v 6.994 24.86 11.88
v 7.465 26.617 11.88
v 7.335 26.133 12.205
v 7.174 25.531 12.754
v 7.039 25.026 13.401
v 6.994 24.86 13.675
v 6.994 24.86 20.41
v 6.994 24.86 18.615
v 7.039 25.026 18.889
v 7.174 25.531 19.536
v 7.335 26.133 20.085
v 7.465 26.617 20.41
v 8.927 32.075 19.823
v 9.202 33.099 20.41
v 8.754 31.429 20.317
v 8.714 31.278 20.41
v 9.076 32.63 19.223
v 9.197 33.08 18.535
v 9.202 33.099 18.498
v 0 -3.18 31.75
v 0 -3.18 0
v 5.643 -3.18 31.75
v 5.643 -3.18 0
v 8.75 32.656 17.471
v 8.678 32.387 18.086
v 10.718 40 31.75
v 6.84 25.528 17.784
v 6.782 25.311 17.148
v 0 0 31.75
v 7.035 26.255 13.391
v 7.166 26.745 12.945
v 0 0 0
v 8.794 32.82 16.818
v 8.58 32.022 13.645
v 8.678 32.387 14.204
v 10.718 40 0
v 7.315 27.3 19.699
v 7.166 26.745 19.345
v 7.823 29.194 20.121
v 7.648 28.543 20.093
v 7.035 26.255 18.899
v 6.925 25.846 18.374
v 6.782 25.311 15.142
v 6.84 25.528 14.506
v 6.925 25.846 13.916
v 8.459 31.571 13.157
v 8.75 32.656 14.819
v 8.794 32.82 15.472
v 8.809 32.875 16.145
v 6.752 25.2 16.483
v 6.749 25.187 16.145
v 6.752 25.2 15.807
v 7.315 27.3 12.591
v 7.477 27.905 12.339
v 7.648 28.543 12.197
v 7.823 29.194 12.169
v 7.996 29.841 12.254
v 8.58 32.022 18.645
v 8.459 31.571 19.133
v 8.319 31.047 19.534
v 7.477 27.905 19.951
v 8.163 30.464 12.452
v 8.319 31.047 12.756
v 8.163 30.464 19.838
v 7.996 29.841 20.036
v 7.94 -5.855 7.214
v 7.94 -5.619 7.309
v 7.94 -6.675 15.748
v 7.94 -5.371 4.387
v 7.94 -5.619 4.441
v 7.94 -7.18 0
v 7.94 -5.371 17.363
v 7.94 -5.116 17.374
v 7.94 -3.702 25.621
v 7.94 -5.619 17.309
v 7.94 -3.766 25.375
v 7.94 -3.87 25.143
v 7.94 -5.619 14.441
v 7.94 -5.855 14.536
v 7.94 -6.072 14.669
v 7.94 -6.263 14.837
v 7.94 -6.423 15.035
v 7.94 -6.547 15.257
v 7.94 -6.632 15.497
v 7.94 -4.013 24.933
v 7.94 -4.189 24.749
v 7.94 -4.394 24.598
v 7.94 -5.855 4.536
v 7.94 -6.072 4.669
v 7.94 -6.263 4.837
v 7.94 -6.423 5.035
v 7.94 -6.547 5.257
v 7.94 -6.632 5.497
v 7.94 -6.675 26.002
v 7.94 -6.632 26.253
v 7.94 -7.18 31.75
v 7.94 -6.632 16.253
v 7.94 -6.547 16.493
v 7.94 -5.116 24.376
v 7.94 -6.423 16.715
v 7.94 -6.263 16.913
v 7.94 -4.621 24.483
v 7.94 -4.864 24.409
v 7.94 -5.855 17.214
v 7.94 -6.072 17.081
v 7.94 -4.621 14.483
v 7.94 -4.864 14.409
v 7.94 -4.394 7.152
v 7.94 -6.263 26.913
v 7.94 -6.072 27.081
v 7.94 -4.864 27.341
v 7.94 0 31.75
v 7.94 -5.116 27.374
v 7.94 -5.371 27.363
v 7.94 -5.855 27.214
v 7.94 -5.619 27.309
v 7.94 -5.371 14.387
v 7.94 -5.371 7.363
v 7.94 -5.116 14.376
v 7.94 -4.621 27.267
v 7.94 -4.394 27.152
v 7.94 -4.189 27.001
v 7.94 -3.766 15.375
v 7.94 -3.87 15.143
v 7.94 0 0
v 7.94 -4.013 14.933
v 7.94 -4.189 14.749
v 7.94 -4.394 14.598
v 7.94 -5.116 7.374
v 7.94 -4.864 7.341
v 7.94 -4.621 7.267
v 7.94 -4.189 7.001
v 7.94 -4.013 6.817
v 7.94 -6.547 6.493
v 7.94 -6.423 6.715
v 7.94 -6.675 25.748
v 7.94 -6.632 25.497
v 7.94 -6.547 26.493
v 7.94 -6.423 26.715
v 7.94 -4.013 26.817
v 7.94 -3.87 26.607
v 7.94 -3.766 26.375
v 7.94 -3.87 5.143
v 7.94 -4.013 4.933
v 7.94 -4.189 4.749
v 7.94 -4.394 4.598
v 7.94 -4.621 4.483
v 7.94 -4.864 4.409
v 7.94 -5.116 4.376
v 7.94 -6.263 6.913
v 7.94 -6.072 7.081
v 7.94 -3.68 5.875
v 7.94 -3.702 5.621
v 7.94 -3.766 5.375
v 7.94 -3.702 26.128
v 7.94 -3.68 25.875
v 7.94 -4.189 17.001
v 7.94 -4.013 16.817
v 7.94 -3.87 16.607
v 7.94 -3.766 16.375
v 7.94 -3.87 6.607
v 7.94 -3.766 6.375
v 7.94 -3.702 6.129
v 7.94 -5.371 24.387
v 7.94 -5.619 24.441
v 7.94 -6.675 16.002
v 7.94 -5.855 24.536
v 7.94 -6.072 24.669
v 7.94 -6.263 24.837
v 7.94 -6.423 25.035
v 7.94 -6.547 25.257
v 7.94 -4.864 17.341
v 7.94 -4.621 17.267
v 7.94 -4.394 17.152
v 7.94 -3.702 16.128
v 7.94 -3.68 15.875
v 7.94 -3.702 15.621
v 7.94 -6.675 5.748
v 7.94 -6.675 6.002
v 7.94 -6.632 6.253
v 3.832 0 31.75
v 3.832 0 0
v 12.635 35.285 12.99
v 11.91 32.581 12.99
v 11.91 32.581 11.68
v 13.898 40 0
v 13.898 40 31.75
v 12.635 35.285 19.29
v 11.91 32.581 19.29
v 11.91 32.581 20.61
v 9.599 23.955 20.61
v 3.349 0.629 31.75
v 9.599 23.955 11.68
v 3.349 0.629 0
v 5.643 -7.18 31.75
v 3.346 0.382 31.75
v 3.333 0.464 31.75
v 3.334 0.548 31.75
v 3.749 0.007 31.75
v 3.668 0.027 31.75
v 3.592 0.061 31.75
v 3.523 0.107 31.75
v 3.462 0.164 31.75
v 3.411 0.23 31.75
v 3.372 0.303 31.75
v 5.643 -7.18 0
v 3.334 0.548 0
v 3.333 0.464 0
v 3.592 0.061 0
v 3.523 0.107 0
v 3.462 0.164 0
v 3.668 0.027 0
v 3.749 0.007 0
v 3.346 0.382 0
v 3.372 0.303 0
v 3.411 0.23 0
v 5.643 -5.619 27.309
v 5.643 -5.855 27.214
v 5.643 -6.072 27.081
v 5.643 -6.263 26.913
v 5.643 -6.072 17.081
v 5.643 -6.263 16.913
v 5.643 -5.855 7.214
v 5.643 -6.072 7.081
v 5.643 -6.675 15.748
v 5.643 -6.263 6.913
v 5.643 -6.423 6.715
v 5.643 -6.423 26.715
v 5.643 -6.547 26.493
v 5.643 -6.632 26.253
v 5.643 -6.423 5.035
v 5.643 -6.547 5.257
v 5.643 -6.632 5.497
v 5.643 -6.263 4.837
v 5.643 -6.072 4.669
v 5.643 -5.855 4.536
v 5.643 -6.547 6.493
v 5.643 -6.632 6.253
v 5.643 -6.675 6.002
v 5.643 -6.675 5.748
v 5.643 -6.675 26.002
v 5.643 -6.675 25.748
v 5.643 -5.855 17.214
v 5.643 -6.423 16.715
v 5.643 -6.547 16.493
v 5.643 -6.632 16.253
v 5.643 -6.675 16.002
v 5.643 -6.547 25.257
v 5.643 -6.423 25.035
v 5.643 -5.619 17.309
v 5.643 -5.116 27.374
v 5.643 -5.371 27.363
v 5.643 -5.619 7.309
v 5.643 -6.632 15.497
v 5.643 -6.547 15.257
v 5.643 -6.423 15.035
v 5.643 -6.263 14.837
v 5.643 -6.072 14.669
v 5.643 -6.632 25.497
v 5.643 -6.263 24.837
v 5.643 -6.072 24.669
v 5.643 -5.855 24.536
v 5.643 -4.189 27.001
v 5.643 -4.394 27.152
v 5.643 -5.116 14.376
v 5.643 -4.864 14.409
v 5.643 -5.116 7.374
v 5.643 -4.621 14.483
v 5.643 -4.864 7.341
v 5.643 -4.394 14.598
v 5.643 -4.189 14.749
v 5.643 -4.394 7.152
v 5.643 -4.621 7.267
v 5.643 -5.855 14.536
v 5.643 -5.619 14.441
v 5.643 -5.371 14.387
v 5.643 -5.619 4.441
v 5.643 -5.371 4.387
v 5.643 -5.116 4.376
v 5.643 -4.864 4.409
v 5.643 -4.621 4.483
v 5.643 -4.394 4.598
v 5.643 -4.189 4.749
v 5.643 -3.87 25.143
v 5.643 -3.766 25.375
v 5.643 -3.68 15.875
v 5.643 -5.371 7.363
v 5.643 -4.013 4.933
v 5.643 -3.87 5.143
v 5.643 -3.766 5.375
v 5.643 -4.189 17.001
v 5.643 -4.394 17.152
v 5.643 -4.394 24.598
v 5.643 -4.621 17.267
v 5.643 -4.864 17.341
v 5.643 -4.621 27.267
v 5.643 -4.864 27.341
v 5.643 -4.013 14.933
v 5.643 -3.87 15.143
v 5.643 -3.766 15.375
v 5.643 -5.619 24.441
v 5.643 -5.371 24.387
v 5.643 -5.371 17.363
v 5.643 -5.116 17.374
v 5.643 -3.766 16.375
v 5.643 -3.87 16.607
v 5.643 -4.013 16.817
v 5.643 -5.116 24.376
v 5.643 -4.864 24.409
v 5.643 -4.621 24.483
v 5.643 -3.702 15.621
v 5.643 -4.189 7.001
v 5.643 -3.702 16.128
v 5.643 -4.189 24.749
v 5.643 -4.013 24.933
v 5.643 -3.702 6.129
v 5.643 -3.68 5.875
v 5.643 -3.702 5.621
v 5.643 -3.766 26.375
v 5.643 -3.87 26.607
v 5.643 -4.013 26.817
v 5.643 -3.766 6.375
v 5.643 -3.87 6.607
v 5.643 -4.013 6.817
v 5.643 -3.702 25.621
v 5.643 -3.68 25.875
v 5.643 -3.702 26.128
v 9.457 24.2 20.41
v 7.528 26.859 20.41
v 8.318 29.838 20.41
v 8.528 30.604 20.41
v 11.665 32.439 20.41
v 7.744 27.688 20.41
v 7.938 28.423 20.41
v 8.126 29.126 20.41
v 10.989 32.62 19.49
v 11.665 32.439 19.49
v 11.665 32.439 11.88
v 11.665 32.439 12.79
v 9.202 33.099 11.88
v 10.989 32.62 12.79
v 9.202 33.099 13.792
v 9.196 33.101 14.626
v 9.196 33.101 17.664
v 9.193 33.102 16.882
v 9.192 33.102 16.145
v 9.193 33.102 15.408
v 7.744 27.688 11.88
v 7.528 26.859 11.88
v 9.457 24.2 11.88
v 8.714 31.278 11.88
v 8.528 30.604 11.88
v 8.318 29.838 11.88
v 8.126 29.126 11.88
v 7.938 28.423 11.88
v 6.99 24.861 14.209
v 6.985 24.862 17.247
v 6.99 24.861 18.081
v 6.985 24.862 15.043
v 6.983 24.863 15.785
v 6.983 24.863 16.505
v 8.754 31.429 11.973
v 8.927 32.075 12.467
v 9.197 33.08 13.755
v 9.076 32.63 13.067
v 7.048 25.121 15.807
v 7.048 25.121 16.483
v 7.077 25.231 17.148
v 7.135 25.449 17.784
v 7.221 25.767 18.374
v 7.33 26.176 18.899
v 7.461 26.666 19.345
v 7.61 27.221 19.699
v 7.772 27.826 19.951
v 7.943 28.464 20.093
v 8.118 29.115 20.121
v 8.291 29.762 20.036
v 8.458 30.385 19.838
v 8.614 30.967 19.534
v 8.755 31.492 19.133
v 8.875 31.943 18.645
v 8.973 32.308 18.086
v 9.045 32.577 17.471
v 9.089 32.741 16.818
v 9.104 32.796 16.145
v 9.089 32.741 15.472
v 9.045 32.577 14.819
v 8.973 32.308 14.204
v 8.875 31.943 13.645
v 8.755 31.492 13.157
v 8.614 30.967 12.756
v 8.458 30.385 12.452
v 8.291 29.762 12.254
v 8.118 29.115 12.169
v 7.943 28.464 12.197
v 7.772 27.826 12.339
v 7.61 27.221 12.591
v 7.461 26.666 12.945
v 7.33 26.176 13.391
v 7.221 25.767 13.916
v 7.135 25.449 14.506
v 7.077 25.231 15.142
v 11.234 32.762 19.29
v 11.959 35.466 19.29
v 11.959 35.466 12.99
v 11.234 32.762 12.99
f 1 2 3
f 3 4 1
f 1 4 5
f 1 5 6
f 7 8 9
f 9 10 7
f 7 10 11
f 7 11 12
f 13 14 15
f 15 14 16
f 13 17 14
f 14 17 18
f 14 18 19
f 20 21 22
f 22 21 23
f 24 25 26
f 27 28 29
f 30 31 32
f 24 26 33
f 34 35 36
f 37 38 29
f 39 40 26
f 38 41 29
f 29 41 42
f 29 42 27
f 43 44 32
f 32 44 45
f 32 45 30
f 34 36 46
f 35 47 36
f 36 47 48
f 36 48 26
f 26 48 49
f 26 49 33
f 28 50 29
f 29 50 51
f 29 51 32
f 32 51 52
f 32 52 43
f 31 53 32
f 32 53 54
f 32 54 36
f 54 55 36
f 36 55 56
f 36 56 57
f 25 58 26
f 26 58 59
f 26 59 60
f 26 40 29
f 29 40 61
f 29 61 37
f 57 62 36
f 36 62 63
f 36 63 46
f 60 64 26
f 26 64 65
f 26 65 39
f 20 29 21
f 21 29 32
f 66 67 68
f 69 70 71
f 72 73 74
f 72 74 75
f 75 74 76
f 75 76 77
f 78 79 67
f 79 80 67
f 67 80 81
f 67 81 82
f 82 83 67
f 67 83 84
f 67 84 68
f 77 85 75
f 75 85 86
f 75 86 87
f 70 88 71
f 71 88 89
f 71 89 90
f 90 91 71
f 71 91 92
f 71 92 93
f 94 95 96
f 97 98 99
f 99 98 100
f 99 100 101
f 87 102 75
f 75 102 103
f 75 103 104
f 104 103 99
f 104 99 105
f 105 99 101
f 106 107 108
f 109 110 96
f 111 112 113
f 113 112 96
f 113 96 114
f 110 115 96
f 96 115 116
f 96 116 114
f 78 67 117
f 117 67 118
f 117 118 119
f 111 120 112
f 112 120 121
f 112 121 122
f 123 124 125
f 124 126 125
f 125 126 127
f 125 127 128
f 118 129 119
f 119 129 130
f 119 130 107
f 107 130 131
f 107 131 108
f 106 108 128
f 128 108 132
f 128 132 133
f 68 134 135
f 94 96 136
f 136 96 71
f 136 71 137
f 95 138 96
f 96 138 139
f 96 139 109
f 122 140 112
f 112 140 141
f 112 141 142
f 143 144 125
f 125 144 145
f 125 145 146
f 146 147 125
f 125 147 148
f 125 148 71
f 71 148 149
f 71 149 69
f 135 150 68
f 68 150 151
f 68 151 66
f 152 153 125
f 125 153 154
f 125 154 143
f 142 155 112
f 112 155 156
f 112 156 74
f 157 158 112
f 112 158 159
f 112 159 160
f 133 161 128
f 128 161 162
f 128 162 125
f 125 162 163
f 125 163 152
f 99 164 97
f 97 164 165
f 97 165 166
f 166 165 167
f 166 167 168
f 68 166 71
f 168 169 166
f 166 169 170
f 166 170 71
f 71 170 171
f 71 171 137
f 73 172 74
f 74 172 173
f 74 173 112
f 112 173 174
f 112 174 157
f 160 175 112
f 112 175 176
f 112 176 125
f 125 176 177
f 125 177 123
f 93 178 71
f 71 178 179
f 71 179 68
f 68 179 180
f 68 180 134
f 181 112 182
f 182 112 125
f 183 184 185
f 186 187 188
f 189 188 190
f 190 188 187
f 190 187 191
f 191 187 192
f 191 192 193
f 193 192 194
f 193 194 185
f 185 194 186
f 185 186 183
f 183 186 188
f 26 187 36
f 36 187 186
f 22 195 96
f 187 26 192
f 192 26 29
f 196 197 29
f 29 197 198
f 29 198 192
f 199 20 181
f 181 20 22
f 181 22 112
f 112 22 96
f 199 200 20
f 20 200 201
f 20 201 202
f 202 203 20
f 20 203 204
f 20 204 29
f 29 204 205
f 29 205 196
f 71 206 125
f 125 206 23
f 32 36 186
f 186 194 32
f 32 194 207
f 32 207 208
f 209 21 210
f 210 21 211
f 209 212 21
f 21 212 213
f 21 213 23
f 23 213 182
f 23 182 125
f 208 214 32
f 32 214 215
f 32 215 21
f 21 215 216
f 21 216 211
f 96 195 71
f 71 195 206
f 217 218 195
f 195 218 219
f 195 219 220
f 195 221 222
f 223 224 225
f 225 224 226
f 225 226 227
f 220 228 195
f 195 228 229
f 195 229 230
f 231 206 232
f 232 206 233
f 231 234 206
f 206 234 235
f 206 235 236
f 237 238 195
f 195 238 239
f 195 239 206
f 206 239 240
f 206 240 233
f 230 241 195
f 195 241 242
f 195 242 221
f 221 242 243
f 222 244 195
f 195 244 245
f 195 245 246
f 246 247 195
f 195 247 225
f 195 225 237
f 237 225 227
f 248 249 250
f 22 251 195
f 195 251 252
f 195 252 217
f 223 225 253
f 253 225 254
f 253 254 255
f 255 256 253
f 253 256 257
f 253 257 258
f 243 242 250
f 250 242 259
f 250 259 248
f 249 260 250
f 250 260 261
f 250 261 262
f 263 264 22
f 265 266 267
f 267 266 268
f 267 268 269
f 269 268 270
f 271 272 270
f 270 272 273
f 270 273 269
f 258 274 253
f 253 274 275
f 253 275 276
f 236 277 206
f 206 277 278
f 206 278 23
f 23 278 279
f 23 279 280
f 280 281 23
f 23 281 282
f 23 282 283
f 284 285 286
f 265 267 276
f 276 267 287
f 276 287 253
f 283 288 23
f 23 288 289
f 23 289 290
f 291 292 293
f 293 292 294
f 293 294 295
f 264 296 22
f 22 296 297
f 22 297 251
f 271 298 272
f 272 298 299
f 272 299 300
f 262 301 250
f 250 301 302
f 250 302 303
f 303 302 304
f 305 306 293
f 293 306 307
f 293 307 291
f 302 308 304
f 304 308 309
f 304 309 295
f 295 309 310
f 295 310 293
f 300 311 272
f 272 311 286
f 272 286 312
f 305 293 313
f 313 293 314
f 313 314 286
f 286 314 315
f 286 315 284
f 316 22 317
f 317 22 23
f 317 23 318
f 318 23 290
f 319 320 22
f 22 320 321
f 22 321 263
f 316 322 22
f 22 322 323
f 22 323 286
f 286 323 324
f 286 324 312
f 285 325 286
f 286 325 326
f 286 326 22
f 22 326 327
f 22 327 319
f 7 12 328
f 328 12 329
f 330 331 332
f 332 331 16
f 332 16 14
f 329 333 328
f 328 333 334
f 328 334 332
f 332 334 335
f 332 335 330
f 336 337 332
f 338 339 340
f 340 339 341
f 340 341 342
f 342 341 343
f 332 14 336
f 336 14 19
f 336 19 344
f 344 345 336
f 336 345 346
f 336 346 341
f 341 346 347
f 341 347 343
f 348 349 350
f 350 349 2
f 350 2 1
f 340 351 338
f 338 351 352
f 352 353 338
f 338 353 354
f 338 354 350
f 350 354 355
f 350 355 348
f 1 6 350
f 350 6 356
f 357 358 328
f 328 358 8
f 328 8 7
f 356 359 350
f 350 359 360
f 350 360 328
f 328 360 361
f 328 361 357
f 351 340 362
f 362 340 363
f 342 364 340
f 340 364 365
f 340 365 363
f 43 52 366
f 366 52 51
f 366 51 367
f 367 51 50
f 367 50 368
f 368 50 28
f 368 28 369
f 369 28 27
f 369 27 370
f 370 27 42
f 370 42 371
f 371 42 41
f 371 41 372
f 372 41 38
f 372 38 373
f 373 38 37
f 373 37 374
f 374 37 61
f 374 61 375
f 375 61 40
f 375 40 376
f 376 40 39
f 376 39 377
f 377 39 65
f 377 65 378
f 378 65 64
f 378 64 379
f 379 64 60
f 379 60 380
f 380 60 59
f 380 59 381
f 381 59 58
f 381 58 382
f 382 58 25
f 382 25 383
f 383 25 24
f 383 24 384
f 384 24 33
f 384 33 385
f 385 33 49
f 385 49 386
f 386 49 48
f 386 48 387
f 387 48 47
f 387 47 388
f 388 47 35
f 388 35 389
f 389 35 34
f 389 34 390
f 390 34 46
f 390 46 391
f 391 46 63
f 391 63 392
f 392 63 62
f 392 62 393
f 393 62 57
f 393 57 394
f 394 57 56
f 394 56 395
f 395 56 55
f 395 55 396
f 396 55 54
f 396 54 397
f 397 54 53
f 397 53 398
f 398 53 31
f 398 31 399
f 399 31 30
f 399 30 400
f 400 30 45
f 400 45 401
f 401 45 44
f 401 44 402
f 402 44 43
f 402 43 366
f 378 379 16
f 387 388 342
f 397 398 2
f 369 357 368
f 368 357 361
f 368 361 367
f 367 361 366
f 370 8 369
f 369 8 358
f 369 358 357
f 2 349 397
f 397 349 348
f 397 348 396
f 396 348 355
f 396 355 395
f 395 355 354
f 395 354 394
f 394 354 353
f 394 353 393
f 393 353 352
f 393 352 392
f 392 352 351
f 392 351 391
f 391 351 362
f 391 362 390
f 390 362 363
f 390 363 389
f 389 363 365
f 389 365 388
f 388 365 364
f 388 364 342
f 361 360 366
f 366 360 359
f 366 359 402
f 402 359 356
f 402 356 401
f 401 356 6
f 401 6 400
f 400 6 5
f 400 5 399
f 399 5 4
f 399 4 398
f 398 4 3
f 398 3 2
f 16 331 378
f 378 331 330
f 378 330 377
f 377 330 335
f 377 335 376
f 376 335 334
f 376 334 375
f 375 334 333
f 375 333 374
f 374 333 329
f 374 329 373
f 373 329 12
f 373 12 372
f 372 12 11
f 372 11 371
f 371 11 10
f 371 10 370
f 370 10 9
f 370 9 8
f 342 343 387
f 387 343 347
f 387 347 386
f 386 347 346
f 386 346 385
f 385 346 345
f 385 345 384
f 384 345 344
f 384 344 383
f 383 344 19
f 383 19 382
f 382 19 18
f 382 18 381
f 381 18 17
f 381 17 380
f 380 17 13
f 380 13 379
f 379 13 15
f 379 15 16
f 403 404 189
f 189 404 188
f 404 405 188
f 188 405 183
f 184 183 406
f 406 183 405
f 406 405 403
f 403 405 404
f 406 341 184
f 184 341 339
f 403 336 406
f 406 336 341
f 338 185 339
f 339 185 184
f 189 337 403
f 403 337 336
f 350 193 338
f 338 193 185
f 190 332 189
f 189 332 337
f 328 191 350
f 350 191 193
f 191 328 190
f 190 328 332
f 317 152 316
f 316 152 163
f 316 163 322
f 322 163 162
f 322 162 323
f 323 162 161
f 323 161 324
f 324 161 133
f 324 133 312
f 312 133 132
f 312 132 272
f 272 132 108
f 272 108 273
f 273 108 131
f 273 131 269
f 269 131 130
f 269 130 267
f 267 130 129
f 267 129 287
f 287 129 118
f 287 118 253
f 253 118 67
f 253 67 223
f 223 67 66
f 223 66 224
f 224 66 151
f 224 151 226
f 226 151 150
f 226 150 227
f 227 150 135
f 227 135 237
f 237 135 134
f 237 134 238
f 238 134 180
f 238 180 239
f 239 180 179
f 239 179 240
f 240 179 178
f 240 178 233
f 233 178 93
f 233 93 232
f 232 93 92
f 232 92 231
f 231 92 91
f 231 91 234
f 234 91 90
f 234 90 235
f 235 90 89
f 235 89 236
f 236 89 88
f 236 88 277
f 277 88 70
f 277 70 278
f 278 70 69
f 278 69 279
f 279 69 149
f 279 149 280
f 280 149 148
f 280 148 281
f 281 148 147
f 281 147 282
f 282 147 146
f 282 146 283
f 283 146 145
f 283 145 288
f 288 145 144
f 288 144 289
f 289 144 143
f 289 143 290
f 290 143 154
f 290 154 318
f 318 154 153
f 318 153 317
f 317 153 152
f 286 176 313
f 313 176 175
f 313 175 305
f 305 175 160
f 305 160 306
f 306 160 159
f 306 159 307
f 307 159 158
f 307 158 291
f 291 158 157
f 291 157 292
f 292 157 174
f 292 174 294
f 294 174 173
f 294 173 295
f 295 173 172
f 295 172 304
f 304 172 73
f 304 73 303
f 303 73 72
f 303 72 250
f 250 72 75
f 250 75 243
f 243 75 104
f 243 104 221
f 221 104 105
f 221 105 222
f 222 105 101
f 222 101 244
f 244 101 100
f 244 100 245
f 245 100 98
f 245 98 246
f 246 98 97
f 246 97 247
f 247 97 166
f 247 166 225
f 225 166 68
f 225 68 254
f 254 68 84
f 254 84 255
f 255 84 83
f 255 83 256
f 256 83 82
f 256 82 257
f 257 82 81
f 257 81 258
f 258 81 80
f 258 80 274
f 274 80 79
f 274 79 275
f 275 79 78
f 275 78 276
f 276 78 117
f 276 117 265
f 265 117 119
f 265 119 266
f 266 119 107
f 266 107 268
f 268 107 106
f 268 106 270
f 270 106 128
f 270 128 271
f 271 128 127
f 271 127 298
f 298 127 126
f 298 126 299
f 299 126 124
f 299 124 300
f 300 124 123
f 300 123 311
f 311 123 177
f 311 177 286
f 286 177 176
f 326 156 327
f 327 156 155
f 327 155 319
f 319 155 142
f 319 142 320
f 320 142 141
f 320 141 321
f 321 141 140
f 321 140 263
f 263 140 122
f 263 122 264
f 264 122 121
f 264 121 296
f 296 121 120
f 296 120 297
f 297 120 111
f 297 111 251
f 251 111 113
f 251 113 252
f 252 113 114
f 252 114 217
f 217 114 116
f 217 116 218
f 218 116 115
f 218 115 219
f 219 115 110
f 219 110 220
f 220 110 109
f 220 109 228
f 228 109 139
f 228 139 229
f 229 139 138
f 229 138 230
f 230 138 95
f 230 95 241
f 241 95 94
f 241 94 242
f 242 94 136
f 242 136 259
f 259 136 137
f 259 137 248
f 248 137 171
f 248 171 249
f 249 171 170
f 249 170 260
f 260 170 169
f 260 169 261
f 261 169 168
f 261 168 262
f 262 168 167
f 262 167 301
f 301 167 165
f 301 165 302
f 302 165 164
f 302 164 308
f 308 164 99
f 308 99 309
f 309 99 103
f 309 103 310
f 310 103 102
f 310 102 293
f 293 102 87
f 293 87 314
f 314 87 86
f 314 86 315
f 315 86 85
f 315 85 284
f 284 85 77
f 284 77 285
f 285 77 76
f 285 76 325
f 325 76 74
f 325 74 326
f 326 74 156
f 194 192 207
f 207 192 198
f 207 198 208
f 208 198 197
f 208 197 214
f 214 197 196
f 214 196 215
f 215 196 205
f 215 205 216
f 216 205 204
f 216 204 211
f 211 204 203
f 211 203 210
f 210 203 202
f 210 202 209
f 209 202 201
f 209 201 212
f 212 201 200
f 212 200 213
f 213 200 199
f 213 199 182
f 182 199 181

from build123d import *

# Parameters (mm, degrees)
ESQUISSE1_W             = 2.296627968
ESQUISSE1_H             = 4
BOSS_EXTRU_1_DEPTH      = 31.75
ESQUISSE2_W             = 8.53
ESQUISSE2_H             = 8.53
ENL_V_MAT_EXTRU_1_DEPTH = 2.75
ESQUISSE3_R             = 3.98
ENL_V_MAT_EXTRU_2_DEPTH = 31.75
CHANFREIN3_SIZE         = 0.01605866
CHANFREIN3_SIZE_2       = 0.92
ESQUISSE5_W             = 6.3
ESQUISSE5_H             = 3
ENL_V_MAT_EXTRU_3_DEPTH = 0.7
CHANFREIN4_SIZE         = 0.2
ESQUISSE6_R             = 1.5
ENL_V_MAT_EXTRU_4_DEPTH = 14.7
CONG_3_R                = 0.5


with BuildPart() as part:
    # Esquisse1 → Boss.-Extru.1 (new body)
    with BuildSketch(Plane.XY):
        Polygon((3.18, 0), (0, 0), (10.717967697, 40), (13.897967697, 40), align=None)
        Polygon((3.18, 0), (0, 0), (0, -3.18), (5.643372032, -3.18), (7.94, -3.18), (7.94, 0), align=None)
        with Locations((6.791686016, -5.18)):
            Rectangle(ESQUISSE1_W, ESQUISSE1_H)
    extrude(amount=BOSS_EXTRU_1_DEPTH)

    # Esquisse2 → Enlèv. mat.-Extru.1 (cut)
    with BuildSketch(Plane(origin=(2.966980392, -0.795, 0), x_dir=(0, 0, -1), z_dir=(0.9659258262890674, -0.2588190451025244, 0))):
        with Locations((-16.145, 30.088044563)):
            Rectangle(ESQUISSE2_W, ESQUISSE2_H)
    extrude(amount=-ENL_V_MAT_EXTRU_1_DEPTH, mode=Mode.SUBTRACT)

    # Esquisse3 → Enlèv. mat.-Extru.2 (cut)
    with BuildSketch(Plane(origin=(0.31068437, -0.083247626, 0), x_dir=(0, 0, -1), z_dir=(0.9659258262890674, -0.2588190451025245, 0))):
        with Locations(Location((-16.145, 30.055023218, 0), (0, 0, 90))):
            Circle(ESQUISSE3_R)
    extrude(amount=-ENL_V_MAT_EXTRU_2_DEPTH, mode=Mode.SUBTRACT)

    # Chanfrein3
    # the kernel refuses this chamfer: 0.92, 0.01605866 mm, written as the material it takes off along each edge
    with BuildSketch(Plane(origin=(8.08949678, 28.94767551, 16.145), x_dir=(0.2588190451025241, 0.9659258262890673, 0), z_dir=(0, 0, -1))) as chanfrein3_piece_1_section:
        Polygon((3.98, -CHANFREIN3_SIZE * 0.999999983433), (3.98 + CHANFREIN3_SIZE_2, 0), (3.98, 0), align=None)
    chanfrein3_piece_1 = revolve(axis=Axis((8.08949678, 28.94767551, 16.145), (0.9659258262890674, -0.2588190451025245, 0)), mode=Mode.PRIVATE)
    chanfrein3_piece_1 = split(chanfrein3_piece_1, bisect_by=Plane(origin=(9.196219069, 33.100769288, 19.703208658), z_dir=(-0.25881904510252435, -0.9659258262890673, 0)), keep=Keep.TOP, mode=Mode.PRIVATE)
    chanfrein3_piece_1 = split(chanfrein3_piece_1, bisect_by=Plane(origin=(8.615509723, 30.933532505, 20.41), z_dir=(0, 0, -1)), keep=Keep.TOP, mode=Mode.PRIVATE)
    chanfrein3_piece_1 = split(chanfrein3_piece_1, bisect_by=Plane(origin=(8.615509723, 30.933532505, 11.88), z_dir=(0, 0, 1)), keep=Keep.TOP, mode=Mode.PRIVATE)
    chanfrein3_piece_1 = split(chanfrein3_piece_1, bisect_by=Plane(origin=(6.988492614, 24.86142199, 19.703208658), z_dir=(0.25881904510252435, 0.9659258262890673, 0)), keep=Keep.TOP, mode=Mode.PRIVATE)
    add(chanfrein3_piece_1, mode=Mode.SUBTRACT)

    # Esquisse5 → Enlèv. mat.-Extru.3 (cut)
    with BuildSketch(Plane(origin=(2.966980392, -0.795, 0), x_dir=(0, 0, -1), z_dir=(0.9659258262890674, -0.2588190451025244, 0))):
        with Locations((-16.14, 35.853044563)):
            Rectangle(ESQUISSE5_W, ESQUISSE5_H)
    extrude(amount=-ENL_V_MAT_EXTRU_3_DEPTH, mode=Mode.SUBTRACT)

    # Chanfrein4
    chanfrein4_edges = [part.edges().sort_by_distance(p)[0] for p in [
        (10.754339355, 28.267819306, 20.41),
        (9.650476128, 24.148145657, 16.145),
        (10.754339355, 28.267819306, 11.88),
        (11.858202582, 32.387492955, 12.435),
        (11.858202582, 32.387492955, 19.85),
        (11.520128543, 32.478079621, 19.29),
        (11.182054504, 32.568666287, 16.14),
        (11.520128543, 32.478079621, 12.99),
    ]]
    chamfer(chanfrein4_edges, length=CHANFREIN4_SIZE)

    # Esquisse6 → Enlèv. mat.-Extru.4 (cut)
    with BuildSketch(Plane(origin=(7.94, 0, 0), x_dir=(0, 0, -1), z_dir=(1, 0, 0))):
        with Locations(Location((-25.875, -5.18, 0), (0, 0, 90))):
            Circle(ESQUISSE6_R)
        with Locations(Location((-15.875, -5.18, 0), (0, 0, 90))):
            Circle(ESQUISSE6_R)
        with Locations(Location((-5.875, -5.18, 0), (0, 0, 90))):
            Circle(ESQUISSE6_R)
    extrude(amount=-ENL_V_MAT_EXTRU_4_DEPTH, mode=Mode.SUBTRACT)

    # Congé3
    cong_3_edges = [part.edges().sort_by_distance(p)[0] for p in [
        (3.18, 0, 15.875),
    ]]
    fillet(cong_3_edges, radius=CONG_3_R)


solid = part.part
